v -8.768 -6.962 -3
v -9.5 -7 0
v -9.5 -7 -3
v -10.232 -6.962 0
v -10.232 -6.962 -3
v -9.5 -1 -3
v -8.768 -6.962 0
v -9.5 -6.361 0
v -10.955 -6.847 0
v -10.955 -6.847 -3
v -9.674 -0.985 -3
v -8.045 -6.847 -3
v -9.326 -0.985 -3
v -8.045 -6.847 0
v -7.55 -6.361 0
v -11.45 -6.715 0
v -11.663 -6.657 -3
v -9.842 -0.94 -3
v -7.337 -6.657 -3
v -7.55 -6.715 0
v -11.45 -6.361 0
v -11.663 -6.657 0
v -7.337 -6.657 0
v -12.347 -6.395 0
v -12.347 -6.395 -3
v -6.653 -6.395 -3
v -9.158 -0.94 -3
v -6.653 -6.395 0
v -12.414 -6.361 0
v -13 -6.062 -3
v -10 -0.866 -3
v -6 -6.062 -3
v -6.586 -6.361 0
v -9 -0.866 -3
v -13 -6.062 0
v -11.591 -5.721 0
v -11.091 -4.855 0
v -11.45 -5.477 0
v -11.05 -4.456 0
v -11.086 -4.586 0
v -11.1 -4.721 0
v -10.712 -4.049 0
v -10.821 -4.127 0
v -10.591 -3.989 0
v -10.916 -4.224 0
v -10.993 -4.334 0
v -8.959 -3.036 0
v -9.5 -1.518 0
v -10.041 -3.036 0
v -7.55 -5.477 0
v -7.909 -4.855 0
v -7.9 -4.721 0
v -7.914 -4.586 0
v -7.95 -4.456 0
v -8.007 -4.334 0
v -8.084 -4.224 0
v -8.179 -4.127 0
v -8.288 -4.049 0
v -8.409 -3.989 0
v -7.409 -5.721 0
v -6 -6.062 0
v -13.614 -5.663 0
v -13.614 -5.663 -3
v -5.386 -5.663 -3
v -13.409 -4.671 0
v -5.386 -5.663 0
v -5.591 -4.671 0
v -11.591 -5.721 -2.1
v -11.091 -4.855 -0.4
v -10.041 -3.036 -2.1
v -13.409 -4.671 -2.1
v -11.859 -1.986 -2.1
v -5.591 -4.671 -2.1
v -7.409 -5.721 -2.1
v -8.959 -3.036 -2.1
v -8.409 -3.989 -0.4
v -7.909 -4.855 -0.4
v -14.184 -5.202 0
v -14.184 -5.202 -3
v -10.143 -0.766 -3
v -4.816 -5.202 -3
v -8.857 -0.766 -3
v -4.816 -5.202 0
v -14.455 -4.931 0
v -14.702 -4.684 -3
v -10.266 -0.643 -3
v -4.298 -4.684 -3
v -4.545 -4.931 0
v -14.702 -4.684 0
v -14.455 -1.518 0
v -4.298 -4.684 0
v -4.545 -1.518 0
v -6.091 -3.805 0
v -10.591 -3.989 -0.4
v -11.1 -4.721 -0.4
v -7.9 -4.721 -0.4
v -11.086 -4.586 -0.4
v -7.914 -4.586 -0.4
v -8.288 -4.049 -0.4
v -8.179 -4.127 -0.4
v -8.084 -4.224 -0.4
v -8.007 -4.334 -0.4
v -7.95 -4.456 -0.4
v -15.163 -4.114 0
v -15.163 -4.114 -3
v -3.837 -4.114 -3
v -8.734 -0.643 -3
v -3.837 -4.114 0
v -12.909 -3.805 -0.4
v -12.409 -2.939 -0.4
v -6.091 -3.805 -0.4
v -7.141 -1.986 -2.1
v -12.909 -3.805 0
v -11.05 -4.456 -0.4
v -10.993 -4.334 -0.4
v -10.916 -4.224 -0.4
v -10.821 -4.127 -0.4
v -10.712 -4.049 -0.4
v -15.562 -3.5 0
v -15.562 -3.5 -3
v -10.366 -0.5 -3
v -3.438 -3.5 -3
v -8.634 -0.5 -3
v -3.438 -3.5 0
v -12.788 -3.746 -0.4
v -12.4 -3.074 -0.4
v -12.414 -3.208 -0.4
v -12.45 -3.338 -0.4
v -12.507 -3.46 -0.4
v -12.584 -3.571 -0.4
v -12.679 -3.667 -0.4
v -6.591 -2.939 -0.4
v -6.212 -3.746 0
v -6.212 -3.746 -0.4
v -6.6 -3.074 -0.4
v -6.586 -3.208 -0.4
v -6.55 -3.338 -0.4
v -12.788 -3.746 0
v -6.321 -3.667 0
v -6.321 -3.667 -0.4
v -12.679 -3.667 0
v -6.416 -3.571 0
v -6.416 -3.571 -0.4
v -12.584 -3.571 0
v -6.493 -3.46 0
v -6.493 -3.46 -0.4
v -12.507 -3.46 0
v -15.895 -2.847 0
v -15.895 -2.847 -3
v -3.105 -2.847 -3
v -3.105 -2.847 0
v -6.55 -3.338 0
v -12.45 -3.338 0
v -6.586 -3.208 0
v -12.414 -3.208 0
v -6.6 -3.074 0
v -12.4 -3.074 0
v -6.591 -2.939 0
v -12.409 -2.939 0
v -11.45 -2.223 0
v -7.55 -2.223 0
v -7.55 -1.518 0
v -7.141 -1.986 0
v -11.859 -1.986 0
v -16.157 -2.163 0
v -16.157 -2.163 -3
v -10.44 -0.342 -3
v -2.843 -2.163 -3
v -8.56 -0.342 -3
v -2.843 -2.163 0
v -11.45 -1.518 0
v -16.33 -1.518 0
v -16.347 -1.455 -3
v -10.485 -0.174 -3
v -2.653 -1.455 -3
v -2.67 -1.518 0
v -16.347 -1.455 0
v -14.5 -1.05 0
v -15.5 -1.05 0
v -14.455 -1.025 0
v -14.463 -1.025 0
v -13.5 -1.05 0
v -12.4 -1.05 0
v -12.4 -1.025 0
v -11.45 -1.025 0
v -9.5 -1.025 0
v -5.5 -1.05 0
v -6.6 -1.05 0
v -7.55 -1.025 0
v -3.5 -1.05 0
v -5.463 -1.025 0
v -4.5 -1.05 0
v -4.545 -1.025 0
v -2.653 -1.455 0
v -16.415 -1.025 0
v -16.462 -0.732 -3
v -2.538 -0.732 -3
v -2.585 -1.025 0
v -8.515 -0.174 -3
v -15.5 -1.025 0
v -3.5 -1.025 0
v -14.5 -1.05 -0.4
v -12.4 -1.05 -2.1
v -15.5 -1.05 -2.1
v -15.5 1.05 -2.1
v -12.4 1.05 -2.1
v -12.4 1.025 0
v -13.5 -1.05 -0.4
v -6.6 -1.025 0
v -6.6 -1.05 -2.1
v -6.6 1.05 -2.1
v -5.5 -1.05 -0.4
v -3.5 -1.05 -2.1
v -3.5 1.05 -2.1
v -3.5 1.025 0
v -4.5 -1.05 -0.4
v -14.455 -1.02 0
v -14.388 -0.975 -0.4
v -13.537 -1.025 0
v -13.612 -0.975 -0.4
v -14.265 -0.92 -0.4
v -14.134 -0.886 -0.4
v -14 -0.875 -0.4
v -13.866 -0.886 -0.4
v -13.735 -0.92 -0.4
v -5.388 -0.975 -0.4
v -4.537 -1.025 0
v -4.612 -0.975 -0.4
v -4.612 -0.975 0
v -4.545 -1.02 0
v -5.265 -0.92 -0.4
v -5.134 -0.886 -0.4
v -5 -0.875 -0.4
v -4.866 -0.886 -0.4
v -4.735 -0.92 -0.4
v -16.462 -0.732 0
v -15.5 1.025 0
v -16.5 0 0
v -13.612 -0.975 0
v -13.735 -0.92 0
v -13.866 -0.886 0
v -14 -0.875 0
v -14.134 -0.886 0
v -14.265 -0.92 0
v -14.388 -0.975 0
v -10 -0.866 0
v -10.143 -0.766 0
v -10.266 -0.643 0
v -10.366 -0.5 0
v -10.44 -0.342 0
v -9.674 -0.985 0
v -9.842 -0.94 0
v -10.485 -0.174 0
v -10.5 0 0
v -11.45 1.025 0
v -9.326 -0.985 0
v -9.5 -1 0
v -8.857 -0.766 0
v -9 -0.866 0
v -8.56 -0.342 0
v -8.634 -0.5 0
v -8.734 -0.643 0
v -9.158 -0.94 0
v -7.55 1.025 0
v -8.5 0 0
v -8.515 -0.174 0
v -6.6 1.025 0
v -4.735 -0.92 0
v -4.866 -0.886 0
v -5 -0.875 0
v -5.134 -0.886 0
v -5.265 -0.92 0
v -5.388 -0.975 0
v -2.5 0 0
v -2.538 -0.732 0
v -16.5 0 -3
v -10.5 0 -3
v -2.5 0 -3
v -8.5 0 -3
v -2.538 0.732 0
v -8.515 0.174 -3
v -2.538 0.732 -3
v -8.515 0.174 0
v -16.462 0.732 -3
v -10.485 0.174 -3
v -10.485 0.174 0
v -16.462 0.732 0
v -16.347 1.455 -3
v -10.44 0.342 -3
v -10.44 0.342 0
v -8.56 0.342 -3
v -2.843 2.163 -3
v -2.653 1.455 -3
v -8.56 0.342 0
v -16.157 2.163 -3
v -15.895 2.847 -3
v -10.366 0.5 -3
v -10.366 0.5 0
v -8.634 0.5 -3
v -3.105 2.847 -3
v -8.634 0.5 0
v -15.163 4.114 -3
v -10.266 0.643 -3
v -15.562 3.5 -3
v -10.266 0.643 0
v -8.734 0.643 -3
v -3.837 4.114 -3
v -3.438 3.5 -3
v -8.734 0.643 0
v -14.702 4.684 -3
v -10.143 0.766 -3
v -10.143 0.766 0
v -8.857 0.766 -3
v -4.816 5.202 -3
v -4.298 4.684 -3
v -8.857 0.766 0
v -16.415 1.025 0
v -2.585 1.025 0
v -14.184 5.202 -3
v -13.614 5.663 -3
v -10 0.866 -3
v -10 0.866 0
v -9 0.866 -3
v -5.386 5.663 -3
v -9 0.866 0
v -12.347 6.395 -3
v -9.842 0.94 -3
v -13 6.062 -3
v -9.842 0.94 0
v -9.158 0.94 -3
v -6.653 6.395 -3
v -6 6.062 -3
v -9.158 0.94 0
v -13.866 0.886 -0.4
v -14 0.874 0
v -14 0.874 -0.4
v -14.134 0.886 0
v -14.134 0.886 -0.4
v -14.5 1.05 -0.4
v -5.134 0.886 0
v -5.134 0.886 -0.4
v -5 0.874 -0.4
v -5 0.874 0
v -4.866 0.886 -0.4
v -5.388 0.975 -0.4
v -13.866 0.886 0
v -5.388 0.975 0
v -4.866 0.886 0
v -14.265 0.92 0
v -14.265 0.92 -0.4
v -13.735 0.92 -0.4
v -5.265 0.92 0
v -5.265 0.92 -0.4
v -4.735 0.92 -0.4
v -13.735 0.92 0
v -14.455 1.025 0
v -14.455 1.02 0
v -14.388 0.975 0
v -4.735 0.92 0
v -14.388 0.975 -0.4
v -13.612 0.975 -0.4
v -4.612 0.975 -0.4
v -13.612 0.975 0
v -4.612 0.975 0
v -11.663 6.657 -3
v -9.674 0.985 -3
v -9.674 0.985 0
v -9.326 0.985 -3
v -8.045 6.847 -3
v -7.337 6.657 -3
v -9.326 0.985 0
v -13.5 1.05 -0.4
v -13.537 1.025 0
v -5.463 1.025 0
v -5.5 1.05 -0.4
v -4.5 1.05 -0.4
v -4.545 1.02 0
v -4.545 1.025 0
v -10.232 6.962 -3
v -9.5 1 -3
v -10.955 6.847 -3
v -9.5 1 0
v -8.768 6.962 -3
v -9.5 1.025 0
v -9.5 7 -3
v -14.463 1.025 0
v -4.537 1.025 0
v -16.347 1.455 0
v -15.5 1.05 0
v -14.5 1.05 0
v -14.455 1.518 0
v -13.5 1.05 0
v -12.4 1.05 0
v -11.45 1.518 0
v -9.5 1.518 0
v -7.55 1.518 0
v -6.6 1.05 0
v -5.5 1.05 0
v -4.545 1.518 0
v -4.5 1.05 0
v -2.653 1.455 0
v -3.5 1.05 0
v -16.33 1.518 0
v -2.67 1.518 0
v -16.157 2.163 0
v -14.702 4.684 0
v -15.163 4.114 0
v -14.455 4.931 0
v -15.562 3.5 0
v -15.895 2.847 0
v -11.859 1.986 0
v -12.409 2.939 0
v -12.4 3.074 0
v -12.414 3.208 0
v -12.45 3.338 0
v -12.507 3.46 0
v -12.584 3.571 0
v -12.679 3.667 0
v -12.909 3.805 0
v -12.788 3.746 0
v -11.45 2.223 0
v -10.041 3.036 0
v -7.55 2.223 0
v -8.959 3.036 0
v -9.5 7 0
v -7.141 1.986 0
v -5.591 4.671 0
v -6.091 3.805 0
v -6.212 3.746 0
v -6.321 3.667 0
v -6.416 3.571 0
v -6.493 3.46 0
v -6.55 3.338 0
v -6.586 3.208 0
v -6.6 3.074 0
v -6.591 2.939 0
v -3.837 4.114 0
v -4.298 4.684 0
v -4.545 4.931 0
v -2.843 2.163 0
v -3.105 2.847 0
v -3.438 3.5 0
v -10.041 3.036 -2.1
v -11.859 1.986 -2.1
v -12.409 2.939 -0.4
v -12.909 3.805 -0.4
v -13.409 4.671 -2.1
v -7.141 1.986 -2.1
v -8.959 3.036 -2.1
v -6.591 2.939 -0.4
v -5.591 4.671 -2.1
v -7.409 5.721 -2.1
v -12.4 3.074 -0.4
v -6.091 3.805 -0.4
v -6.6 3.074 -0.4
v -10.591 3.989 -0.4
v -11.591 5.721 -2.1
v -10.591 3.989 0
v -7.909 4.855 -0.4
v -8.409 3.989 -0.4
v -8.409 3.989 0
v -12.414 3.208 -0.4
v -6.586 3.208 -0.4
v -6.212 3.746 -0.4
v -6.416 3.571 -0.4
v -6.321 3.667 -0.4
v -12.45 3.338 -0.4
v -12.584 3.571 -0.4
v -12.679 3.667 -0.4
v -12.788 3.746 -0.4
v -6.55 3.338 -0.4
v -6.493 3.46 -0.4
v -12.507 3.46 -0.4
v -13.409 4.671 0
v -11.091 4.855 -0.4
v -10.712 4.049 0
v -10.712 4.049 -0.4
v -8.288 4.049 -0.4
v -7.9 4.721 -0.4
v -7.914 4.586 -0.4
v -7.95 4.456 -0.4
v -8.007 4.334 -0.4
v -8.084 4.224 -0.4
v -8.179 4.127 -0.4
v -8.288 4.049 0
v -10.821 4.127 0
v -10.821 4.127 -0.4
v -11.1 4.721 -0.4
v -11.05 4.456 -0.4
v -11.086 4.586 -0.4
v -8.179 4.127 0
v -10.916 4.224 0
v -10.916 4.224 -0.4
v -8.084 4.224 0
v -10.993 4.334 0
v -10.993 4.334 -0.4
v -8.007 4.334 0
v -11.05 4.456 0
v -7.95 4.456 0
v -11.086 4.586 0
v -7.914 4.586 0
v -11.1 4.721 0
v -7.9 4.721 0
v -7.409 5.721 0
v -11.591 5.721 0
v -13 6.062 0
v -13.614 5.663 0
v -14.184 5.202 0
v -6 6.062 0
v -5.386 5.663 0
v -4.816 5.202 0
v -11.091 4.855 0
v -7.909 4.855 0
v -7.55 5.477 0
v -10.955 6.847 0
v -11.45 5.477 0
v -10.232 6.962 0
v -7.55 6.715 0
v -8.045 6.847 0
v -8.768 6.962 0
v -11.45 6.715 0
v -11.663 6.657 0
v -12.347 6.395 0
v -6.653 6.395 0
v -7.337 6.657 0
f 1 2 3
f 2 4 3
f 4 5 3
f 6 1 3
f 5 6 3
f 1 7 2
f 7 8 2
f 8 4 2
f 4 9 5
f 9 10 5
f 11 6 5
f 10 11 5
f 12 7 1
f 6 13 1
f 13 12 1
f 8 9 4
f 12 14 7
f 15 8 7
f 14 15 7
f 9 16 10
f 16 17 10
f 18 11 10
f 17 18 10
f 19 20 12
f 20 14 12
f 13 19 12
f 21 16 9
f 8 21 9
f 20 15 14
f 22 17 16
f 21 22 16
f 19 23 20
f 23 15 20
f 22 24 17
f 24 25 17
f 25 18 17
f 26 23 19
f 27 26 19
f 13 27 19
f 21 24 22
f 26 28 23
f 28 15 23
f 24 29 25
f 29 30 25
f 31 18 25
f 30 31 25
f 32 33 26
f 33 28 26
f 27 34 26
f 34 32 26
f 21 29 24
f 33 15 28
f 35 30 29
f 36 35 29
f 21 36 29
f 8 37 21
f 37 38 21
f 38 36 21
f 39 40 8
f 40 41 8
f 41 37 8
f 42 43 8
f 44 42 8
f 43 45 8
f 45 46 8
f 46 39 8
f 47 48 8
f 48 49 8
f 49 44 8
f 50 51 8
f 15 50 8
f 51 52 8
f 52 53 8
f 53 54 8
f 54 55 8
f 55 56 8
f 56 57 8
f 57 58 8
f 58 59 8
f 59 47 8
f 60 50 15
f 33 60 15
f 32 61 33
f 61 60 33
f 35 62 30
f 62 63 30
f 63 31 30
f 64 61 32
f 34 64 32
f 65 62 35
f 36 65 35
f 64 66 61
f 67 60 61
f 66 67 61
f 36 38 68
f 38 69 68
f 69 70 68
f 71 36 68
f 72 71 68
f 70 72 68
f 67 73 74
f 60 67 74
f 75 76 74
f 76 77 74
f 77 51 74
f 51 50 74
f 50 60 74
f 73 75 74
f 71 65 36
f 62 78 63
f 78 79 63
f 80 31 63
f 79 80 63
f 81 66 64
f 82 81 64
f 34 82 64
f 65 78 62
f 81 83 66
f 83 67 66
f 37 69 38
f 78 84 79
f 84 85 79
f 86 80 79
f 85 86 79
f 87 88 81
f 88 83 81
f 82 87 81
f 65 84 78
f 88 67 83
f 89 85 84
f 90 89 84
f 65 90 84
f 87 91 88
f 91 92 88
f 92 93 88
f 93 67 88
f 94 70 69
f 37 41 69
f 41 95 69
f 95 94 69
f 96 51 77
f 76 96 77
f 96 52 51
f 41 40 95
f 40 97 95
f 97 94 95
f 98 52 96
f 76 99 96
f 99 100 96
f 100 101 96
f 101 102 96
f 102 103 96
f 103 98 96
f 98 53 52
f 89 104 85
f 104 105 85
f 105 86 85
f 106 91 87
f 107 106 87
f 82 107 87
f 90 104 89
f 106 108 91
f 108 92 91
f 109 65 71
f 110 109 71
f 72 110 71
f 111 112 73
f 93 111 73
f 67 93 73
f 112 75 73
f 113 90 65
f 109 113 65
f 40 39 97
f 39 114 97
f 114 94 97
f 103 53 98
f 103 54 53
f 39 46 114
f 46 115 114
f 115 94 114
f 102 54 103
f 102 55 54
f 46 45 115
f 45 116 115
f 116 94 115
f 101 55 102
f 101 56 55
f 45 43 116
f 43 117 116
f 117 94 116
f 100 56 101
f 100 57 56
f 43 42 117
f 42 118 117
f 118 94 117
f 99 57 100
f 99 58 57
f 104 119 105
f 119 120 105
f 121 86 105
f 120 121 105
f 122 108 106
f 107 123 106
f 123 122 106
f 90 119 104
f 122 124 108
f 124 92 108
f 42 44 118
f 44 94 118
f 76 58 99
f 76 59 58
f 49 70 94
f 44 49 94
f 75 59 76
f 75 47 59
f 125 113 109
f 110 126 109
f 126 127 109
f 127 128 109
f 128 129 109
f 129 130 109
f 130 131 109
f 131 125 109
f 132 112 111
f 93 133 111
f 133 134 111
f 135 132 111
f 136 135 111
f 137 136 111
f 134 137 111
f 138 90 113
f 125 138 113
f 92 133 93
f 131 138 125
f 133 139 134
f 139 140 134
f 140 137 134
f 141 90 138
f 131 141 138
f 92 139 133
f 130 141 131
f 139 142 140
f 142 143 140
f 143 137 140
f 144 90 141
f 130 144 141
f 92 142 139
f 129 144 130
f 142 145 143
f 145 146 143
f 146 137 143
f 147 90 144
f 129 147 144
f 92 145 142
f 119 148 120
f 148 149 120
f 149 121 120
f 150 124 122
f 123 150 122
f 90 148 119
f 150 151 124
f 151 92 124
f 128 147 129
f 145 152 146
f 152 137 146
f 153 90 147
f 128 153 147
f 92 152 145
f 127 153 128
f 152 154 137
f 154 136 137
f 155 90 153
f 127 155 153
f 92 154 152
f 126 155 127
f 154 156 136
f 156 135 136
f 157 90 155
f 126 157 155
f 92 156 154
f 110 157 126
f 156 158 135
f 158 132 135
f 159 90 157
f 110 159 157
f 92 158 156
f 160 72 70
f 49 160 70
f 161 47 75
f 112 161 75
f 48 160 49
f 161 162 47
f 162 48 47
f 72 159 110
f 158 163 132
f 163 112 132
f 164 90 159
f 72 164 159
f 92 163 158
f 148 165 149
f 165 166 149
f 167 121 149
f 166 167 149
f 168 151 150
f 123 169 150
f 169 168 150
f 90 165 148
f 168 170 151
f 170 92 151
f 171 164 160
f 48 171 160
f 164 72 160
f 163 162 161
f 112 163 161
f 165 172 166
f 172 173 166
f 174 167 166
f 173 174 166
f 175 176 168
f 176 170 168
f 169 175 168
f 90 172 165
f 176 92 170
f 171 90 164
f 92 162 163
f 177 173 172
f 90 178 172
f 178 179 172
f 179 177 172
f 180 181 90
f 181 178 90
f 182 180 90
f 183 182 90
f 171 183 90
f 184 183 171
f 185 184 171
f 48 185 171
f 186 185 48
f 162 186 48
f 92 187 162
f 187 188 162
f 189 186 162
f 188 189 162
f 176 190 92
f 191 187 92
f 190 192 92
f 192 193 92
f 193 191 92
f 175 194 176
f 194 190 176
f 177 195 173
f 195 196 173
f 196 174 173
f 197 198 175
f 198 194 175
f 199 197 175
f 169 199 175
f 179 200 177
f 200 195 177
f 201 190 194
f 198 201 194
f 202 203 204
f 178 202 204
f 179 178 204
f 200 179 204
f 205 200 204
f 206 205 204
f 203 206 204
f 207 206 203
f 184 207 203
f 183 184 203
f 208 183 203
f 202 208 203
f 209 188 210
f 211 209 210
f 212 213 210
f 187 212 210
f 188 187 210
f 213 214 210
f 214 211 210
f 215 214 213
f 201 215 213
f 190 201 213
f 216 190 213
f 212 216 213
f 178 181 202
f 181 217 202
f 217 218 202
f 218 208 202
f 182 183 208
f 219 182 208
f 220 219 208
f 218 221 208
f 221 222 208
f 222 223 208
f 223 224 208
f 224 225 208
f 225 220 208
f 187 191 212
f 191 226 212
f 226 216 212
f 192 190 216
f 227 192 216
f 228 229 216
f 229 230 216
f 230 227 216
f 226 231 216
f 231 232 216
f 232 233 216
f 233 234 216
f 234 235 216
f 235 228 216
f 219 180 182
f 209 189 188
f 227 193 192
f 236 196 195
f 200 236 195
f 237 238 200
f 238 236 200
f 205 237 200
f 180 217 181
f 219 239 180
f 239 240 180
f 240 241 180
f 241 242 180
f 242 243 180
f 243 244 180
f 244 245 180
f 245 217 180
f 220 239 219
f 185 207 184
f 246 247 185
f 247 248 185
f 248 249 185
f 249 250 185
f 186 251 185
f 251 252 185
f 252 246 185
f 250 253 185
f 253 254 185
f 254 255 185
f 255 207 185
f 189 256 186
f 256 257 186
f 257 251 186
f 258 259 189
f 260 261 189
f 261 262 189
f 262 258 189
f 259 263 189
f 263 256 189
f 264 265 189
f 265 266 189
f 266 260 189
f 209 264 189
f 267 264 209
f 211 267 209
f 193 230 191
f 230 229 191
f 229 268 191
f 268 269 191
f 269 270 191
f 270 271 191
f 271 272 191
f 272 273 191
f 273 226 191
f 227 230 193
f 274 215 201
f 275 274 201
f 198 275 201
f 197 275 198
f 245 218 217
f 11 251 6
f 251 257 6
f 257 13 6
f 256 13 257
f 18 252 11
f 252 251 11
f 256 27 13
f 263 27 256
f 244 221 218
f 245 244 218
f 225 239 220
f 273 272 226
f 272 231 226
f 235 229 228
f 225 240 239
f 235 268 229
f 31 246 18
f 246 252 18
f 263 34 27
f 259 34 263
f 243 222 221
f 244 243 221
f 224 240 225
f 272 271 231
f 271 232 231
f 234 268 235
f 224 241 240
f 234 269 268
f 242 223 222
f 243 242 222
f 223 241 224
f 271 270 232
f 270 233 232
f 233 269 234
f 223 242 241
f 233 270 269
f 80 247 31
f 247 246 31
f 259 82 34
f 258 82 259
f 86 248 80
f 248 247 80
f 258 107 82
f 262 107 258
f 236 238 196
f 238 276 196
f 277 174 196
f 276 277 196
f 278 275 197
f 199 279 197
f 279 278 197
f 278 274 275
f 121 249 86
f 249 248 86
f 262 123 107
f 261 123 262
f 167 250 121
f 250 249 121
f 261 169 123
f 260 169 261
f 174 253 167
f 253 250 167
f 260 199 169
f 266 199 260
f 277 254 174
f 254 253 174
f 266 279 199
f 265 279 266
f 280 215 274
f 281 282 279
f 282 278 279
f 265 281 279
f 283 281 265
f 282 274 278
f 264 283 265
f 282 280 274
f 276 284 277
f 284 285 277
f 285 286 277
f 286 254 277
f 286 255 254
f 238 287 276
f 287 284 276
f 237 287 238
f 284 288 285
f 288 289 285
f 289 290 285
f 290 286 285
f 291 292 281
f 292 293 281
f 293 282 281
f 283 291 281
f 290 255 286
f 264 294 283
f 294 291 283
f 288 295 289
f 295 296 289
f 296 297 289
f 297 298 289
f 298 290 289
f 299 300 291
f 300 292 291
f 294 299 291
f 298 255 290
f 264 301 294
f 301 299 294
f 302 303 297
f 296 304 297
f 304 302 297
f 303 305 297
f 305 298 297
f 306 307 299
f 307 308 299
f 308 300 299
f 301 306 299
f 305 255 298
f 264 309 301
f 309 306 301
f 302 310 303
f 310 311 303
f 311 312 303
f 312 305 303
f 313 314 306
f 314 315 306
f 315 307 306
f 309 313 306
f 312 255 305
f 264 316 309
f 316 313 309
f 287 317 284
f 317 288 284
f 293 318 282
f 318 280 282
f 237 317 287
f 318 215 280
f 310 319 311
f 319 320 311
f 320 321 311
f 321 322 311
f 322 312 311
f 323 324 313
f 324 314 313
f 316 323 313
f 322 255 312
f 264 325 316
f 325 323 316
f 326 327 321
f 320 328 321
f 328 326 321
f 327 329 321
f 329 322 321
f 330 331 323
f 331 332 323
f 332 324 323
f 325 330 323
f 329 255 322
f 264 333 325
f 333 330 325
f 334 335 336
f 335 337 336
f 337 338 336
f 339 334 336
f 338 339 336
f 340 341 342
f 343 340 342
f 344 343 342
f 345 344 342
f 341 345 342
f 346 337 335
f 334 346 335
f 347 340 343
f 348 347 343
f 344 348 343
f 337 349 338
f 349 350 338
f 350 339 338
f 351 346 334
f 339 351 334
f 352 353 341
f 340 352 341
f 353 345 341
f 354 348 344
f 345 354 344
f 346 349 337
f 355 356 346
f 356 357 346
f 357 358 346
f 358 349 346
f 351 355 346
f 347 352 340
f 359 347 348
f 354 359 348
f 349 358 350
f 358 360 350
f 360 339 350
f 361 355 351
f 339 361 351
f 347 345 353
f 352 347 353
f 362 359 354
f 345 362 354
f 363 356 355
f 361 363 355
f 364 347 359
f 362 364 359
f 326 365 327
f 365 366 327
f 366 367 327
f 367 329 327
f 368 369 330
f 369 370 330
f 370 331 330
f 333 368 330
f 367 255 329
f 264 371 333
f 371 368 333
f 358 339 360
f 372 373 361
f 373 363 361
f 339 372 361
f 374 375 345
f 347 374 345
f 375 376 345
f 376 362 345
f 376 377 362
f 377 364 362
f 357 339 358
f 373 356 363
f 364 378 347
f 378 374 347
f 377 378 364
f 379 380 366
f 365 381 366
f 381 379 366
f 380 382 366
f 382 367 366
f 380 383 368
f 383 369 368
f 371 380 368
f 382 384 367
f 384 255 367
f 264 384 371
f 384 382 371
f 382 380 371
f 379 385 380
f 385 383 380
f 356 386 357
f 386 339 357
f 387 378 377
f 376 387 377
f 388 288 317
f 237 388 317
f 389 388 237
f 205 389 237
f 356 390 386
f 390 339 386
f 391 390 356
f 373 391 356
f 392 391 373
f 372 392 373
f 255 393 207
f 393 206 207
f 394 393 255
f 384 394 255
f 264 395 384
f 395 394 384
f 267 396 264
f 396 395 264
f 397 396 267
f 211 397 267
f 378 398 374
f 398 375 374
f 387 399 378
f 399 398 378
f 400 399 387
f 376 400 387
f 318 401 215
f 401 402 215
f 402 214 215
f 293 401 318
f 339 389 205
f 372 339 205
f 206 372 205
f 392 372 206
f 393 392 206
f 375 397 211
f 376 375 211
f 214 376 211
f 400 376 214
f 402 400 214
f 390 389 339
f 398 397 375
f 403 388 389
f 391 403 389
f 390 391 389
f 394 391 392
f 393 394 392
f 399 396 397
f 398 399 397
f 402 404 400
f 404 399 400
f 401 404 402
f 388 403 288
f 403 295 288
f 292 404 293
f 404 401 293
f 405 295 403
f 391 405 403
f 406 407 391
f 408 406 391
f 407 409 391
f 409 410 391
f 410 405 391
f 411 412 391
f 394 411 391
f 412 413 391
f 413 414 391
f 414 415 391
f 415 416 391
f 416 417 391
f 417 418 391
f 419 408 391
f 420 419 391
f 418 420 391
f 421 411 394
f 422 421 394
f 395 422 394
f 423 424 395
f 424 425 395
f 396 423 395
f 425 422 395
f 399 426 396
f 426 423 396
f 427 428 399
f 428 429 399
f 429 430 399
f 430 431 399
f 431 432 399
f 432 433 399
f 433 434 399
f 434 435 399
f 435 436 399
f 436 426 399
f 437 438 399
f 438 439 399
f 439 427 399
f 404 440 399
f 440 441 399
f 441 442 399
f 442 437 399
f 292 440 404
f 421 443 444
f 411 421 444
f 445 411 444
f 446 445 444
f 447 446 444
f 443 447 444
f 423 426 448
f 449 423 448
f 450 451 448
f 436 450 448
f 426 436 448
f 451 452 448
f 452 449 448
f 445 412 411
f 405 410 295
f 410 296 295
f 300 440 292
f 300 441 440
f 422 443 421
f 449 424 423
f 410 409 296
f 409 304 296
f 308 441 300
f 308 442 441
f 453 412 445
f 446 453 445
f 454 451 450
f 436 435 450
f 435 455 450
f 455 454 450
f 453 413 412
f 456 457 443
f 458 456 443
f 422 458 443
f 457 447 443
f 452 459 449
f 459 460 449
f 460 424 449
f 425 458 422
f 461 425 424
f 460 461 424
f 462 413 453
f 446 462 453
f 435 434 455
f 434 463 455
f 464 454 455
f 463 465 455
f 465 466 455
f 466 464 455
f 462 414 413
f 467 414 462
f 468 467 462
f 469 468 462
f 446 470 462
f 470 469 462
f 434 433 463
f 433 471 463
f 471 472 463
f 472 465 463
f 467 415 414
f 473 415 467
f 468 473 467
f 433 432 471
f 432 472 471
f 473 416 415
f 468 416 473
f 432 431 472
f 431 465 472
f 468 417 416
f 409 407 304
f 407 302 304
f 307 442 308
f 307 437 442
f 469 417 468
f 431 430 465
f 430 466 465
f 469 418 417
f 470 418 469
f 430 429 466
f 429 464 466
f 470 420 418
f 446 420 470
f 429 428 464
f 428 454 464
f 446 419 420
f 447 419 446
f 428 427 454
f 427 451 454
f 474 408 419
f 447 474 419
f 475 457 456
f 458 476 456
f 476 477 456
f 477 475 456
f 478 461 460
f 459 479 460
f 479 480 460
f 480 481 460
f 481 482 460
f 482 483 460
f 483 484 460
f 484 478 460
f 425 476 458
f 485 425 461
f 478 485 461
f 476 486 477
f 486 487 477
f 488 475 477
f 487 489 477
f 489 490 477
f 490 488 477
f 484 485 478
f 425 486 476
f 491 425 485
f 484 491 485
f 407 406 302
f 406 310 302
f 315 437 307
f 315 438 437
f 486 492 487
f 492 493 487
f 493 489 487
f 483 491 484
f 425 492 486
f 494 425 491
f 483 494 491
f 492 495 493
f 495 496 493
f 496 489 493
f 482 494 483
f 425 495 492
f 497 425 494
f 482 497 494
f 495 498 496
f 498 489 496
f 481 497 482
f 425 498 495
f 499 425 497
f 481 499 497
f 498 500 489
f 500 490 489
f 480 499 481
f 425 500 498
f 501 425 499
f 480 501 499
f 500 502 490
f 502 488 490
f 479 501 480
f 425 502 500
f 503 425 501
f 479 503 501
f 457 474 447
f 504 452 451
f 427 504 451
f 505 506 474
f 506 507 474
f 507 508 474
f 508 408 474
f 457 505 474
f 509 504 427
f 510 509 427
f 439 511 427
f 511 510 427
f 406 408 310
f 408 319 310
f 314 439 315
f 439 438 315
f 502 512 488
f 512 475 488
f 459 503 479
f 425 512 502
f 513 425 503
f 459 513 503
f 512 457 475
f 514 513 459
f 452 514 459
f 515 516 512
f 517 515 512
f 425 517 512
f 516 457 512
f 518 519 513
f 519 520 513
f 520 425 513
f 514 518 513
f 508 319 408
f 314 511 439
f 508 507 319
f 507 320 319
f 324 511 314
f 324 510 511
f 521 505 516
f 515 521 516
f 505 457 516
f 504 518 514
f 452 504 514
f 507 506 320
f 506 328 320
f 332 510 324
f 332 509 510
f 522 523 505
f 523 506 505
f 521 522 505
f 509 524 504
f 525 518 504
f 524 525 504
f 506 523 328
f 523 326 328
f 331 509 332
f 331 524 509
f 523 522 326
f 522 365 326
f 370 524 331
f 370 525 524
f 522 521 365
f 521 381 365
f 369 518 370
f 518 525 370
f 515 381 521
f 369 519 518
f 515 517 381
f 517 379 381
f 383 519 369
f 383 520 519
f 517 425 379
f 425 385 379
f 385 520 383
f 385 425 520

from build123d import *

# Parameters (mm, degrees)
SKETCH1_R           = 7
SKETCH1_R_2         = 1
BOSS_EXTRUDE1_DEPTH = 3
SKETCH2_W           = 3.1
SKETCH2_H           = 2.1
CUT_EXTRUDE1_DEPTH  = 2.1
CIRPATTERN1_COUNT   = 6
BOSS_EXTRUDE2_DEPTH = 0.4
CIRPATTERN2_COUNT   = 6


with BuildPart() as part:
    # Sketch1 → Boss-Extrude1 (new body)
    with BuildSketch(Plane.XY):
        with Locations((-9.5, 0)):
            Circle(SKETCH1_R)
        with Locations((-9.5, 0)):
            Circle(SKETCH1_R_2, mode=Mode.SUBTRACT)
    extrude(amount=-BOSS_EXTRUDE1_DEPTH)

    # Sketch2 → Cut-Extrude1 (cut)
    with BuildSketch(Plane.XY):
        with Locations((-13.95, 0)):
            Rectangle(SKETCH2_W, SKETCH2_H)
    cut_extrude1 = extrude(amount=-CUT_EXTRUDE1_DEPTH, mode=Mode.SUBTRACT)

    # CirPattern1: Cut-Extrude1 ×6 about axis
    cirpattern1_axis = Axis((-9.5, 0, 0), (0, 0, 1))
    for i in range(1, CIRPATTERN1_COUNT):
        add(cut_extrude1.rotate(cirpattern1_axis, i * 360 / CIRPATTERN1_COUNT), mode=Mode.SUBTRACT)

    # Sketch3 → Boss-Extrude2 (add)
    with BuildSketch(Plane.XY):
        with BuildLine():
            Line((-14.5, -1.05), (-13.5, -1.05))
            ThreePointArc((-13.5, -1.05), (-14, -0.8744998), (-14.5, -1.05))
        make_face()
        with BuildLine():
            Line((-14.5, 1.05), (-13.5, 1.05))
            ThreePointArc((-13.5, 1.05), (-14, 0.8744998), (-14.5, 1.05))
        make_face()
    boss_extrude2 = extrude(amount=-BOSS_EXTRUDE2_DEPTH)

    # CirPattern2: Boss-Extrude2 ×6 about axis
    cirpattern2_axis = Axis((-9.5, 0, 0), (0, 0, 1))
    for i in range(1, CIRPATTERN2_COUNT):
        add(boss_extrude2.rotate(cirpattern2_axis, i * 360 / CIRPATTERN2_COUNT))


solid = part.part
